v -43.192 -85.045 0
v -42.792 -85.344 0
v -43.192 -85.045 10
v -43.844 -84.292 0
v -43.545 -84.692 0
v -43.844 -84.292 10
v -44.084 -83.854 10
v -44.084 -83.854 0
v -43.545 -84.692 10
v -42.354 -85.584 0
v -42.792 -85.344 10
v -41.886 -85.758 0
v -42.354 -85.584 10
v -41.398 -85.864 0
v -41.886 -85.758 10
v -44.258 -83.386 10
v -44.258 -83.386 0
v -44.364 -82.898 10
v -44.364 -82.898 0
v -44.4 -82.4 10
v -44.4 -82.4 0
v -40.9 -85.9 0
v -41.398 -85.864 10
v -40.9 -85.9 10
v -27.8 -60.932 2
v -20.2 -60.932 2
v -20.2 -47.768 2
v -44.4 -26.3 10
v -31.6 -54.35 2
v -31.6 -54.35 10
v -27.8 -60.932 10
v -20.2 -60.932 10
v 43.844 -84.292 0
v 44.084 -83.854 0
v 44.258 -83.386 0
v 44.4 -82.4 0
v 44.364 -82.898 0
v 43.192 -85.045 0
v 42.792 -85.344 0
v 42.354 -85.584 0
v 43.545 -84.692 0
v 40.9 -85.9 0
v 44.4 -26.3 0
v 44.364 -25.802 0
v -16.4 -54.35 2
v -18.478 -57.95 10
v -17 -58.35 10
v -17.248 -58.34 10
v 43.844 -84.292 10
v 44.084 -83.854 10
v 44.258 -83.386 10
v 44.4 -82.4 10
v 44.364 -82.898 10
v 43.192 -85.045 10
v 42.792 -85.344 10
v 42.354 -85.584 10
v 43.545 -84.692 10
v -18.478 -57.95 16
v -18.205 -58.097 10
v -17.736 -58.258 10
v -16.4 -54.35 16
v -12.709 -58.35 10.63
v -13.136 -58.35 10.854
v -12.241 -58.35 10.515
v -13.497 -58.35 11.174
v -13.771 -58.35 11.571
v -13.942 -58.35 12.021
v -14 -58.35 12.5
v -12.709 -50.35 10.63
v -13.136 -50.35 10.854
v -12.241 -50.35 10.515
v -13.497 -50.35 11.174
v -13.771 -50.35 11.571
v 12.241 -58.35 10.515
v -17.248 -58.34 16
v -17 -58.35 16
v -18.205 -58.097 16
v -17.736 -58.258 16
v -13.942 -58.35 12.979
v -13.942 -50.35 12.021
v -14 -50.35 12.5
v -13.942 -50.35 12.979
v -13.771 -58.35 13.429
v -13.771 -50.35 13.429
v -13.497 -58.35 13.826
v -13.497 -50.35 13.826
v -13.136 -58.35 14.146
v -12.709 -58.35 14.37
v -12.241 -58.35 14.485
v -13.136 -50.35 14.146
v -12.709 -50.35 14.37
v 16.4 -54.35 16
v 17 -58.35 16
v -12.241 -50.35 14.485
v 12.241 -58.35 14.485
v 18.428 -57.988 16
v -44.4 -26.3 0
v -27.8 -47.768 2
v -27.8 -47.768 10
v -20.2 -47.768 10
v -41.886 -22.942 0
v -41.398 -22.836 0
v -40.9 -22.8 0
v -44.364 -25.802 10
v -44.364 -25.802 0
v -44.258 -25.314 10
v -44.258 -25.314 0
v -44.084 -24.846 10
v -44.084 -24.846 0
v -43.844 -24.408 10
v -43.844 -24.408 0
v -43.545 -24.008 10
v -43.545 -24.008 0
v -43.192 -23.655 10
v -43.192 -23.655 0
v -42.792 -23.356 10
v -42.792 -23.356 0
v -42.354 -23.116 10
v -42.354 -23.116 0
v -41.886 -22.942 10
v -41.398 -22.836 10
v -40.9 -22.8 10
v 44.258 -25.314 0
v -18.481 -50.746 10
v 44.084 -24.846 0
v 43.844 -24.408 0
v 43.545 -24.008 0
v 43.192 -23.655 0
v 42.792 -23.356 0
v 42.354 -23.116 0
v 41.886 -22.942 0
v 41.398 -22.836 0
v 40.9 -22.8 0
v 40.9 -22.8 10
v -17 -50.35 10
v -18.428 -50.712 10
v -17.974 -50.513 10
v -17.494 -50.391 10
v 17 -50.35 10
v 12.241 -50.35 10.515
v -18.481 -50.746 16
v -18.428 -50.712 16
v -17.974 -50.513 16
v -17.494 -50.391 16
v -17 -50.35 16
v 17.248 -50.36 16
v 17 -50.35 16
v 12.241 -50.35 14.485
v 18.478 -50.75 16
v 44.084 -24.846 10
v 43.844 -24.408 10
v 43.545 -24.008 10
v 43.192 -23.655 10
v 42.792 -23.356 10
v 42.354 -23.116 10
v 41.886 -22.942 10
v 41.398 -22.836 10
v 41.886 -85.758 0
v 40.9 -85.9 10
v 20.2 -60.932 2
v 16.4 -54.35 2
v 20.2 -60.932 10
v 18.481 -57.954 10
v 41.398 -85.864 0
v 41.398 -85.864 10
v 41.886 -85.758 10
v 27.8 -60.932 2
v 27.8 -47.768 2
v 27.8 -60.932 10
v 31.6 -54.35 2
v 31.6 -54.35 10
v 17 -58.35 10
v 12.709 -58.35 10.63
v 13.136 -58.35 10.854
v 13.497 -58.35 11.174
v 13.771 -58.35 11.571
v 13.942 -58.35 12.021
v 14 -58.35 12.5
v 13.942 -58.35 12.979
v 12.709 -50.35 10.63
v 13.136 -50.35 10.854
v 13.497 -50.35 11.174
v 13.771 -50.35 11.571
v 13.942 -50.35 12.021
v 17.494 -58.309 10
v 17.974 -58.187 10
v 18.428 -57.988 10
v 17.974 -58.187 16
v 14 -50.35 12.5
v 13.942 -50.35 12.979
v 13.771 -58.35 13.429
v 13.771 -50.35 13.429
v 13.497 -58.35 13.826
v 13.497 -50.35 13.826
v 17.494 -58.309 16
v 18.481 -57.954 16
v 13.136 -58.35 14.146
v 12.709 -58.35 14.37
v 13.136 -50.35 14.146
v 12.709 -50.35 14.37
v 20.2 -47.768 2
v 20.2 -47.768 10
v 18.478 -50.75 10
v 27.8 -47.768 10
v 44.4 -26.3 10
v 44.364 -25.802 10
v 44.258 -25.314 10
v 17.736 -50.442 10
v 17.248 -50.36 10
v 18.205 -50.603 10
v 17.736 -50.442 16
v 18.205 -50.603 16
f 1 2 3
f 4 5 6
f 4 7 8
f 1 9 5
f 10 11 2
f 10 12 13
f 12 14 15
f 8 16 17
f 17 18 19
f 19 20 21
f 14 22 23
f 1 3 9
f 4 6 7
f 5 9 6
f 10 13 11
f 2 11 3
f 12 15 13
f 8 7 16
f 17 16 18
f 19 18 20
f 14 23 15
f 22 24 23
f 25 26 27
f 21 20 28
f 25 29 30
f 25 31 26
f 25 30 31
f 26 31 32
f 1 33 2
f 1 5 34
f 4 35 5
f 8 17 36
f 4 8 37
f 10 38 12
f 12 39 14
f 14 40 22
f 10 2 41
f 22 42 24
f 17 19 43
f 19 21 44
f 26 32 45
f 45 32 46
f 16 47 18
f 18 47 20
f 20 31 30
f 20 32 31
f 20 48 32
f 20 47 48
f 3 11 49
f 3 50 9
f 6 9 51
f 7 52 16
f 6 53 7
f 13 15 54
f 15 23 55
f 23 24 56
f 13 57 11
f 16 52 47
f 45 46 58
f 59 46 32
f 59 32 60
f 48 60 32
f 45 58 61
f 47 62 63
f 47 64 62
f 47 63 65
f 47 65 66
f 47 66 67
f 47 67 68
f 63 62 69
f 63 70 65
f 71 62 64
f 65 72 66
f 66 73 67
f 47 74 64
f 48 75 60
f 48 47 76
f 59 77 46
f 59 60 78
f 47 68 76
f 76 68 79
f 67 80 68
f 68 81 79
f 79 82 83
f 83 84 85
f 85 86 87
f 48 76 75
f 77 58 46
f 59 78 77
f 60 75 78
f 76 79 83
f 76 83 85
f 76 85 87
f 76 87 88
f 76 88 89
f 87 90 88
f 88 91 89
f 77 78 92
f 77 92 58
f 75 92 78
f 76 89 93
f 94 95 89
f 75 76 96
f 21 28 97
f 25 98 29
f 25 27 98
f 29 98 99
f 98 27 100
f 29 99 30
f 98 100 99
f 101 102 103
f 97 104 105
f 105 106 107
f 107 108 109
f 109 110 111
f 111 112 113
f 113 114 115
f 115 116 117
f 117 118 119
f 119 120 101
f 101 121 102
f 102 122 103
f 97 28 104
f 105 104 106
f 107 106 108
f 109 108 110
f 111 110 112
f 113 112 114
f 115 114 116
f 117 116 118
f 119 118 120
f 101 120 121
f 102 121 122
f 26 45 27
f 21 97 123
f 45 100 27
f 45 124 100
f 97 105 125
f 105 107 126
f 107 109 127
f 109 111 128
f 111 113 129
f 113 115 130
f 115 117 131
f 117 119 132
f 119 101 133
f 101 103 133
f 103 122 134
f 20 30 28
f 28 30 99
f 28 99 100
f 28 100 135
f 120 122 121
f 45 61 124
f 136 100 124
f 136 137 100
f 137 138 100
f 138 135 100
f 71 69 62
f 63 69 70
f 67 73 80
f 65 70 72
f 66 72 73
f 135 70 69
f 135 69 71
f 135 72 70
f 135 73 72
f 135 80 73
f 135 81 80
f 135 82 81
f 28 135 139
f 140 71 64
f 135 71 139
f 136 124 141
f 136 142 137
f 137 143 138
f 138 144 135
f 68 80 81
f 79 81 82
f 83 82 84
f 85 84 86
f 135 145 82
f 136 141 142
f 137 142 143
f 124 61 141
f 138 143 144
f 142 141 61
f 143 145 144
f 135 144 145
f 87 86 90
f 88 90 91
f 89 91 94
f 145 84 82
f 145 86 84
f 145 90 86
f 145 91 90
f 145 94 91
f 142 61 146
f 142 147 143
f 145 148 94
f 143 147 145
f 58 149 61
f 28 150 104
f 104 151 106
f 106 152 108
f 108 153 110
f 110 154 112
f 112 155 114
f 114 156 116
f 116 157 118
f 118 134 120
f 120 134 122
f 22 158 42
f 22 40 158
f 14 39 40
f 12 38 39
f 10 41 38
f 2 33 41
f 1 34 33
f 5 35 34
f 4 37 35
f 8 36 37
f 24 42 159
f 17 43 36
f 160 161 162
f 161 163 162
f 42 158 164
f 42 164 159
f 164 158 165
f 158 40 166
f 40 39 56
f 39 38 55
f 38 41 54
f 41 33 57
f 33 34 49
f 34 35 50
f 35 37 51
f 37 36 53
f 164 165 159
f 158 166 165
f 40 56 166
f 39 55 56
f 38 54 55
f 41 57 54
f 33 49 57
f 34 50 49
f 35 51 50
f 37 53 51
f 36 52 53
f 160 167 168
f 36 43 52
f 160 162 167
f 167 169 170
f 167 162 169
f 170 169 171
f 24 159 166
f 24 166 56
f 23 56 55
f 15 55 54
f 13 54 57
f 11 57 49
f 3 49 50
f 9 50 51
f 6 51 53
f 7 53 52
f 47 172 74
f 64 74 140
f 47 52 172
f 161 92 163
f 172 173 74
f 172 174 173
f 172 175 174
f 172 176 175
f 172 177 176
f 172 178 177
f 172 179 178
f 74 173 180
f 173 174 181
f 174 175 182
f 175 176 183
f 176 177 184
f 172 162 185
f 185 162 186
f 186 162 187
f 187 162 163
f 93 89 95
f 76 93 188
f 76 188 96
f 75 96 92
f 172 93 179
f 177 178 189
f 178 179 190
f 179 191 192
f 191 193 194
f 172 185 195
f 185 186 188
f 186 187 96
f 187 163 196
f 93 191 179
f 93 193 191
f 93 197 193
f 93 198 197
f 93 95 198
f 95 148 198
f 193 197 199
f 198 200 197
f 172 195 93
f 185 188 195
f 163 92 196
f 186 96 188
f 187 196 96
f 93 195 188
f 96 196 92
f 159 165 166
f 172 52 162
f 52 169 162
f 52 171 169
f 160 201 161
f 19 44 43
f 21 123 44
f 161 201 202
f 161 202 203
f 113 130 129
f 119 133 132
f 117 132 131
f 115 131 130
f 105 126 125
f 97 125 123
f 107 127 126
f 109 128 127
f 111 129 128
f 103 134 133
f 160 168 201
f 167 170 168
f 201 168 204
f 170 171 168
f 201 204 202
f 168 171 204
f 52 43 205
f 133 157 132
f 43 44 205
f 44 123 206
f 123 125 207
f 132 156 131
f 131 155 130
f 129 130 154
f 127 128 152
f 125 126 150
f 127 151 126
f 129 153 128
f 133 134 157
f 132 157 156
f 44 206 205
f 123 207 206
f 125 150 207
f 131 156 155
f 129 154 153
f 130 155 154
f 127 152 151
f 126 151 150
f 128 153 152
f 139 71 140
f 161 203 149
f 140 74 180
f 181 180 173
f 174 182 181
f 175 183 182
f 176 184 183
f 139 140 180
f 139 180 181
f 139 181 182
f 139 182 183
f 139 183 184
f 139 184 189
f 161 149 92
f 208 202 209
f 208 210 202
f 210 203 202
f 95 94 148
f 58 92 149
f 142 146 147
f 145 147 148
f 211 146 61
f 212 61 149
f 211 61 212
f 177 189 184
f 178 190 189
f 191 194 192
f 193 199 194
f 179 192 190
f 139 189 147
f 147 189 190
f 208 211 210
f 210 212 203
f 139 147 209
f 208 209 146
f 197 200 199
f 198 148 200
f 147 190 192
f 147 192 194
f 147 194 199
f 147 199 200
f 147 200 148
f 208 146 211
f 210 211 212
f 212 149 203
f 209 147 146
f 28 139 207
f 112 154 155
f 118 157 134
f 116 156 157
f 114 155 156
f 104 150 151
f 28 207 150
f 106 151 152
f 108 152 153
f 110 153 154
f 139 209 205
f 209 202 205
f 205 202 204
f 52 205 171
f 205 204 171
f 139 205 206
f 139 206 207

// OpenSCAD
// file: lib/lib.scad
// Shared helpers. Include AFTER params.scad (needs TOL, M3_* etc.).
$fa = 4; $fs = 0.5;

module rrect(size, r) {            // 2D rounded rectangle, centred
    r2 = min(r, min(size[0], size[1]) / 2 - 0.001);
    offset(r = r2) square([size[0] - 2 * r2, size[1] - 2 * r2], center = true);
}
module rbox(size, r, center_xy = true) {   // box with rounded vertical edges
    translate(center_xy ? [0, 0, 0] : [size[0] / 2, size[1] / 2, 0])
        linear_extrude(size[2]) rrect([size[0], size[1]], r);
}
module rbox_at(x0, x1, y0, y1, z0, z1, r = 0.01) {
    translate([(x0 + x1) / 2, (y0 + y1) / 2, z0]) rbox([x1 - x0, y1 - y0, z1 - z0], r);
}
module box_at(x0, x1, y0, y1, z0, z1) { translate([x0, y0, z0]) cube([x1 - x0, y1 - y0, z1 - z0]); }

module ring(ro, ri, h) { difference() { cylinder(r = ro, h = h); translate([0, 0, -1]) cylinder(r = ri, h = h + 2); } }
module ring_sector(ro, ri, h, a0, a1) {
    intersection() {
        ring(ro, ri, h);
        linear_extrude(h) polygon(concat([[0, 0]], [for (a = [a0 : (a1 - a0) / 24 : a1]) 2 * ro * [cos(a), sin(a)]]));
    }
}
// teardrop hole along an axis lying horizontal (axis = Y after rotation), printable w/o support
module teardrop2d(d) { union() { circle(d = d); rotate(45) square(d / 2); } }
// vertical heat-set insert hole, opening at z=0 going +z (depth l)
module insert_hole(l = M3_INSERT_L) { translate([0, 0, -EPS]) cylinder(d = M3_INSERT_D, h = l + EPS); }
module m3_clear(l) { translate([0, 0, -EPS]) cylinder(d = M3_CLEAR, h = l + 2 * EPS); }
module m3_csk(l) {  // countersunk clearance from z=0 upward, head at z=0 side
    translate([0, 0, -EPS]) { cylinder(d = M3_CLEAR, h = l + 2 * EPS); cylinder(d1 = 6.4, d2 = M3_CLEAR, h = 1.7); }
}
module card2d() { rrect([CARD_L, CARD_W], CARD_R); }
module card_at(cy, z) { translate([0, cy, z]) linear_extrude(CARD_T) card2d(); }

// ---- gears ----
function _inv(a) = tan(a) - a * PI_ / 180;           // involute function, a in deg
function _invpt(rb, r, ang0, s) = let(al = acos(rb / r), th = ang0 - s * (_inv(al) * 180 / PI_)) [r * cos(th), r * sin(th)];
module involute_gear2d(m, z, pa = 20, clearance = 0.05) {
    rp = m * z / 2; rb = rp * cos(pa); ra = rp + m - clearance; rf = rp - 1.25 * m;
    half = 90 / z + _inv(pa) * 180 / PI_;            // tooth half-angle at base (deg)
    n = 8;
    rs = [for (i = [0 : n]) max(rb, rf) + (ra - max(rb, rf)) * i / n];
    union() {
        circle(r = rf, $fn = z * 4);
        for (k = [0 : z - 1]) rotate(k * 360 / z) polygon(concat(
            [[rf * cos(-half), rf * sin(-half)]],
            [for (r = rs) let(p = _invpt(rb, r, half, 1)) [p[0], -p[1]]],
            [for (i = [n : -1 : 0]) _invpt(rb, rs[i], half, 1)],
            [[rf * cos(half), rf * sin(half)]]));
    }
}
// straight gear rack (2D in XY: teeth along +x, pointing -y, pitch line at y=0)
module gear_rack2d(m, len, back = 3) {
    p = PI_ * m; ad = m; de = 1.25 * m; t = tan(20);
    n = ceil(len / p) + 1;
    intersection() {
        union() {
            translate([0, de]) square([len, back]);
            for (i = [0 : n]) if (i * p - p / 4 - (p / 4 + de * t) >= 0 && i * p + de * t <= len) translate([i * p - p / 4, 0]) polygon([
                [-(p / 4 + de * t), de + 0.01], [p / 4 + de * t + 0.01, de + 0.01],
                [p / 4 - ad * t, -ad], [-(p / 4 - ad * t), -ad] ]);
        }
        translate([0, -ad - 1]) square([len, ad + de + back + 2]);
    }
}
// GT2 belt-tooth profile ring (teeth outward), 2D
module gt2_ring2d(n, r_land, ri) {
    union() {
        difference() { circle(r = r_land + 0.01, $fn = n * 2); circle(r = ri, $fn = n * 2); }
        for (k = [0 : n - 1]) rotate(k * 360 / n)
            translate([r_land, 0]) hull() { translate([-0.2, 0]) square([0.2, 1.0], center = true); translate([0.25, 0]) circle(r = 0.5, $fn = 12); }
    }
}
// main file
// Deck weight: rests on the cards in the hopper (presses the bottom card on the feed
// rollers). Two pockets take M8 nuts / steel slugs. Print: flat, 100 % infill.
include <params.scad>
include <lib/lib.scad>
module hopper_weight(z0 = Z_LOAD) difference() {
    union() {
        translate([0, (HOP_YI0 + HOP_YI1) / 2, z0]) rbox([2 * HOP_XI - 1.2, HOP_YI0 - HOP_YI1 - 1.2, WEIGHT_T], 3.5);
        translate([0, (HOP_YI0 + HOP_YI1) / 2, z0 + WEIGHT_T - 1]) rbox([40, 8, 7], 3);
    }
    for (x = [-24, 24]) translate([x, (HOP_YI0 + HOP_YI1) / 2, z0 + 2]) cylinder(d = fit_slide(15), h = 20, $fn = 6);   // M8 nut / steel slug
    translate([0, (HOP_YI0 + HOP_YI1) / 2, z0 + WEIGHT_T + 2.5]) rotate([90, 0, 0]) hull() for (x = [-12, 12]) translate([x, 0, 0]) cylinder(d = 4, h = 30, center = true);
}
module hopper_weight_print() translate([0, 0, -Z_LOAD]) hopper_weight();
hopper_weight_print();
